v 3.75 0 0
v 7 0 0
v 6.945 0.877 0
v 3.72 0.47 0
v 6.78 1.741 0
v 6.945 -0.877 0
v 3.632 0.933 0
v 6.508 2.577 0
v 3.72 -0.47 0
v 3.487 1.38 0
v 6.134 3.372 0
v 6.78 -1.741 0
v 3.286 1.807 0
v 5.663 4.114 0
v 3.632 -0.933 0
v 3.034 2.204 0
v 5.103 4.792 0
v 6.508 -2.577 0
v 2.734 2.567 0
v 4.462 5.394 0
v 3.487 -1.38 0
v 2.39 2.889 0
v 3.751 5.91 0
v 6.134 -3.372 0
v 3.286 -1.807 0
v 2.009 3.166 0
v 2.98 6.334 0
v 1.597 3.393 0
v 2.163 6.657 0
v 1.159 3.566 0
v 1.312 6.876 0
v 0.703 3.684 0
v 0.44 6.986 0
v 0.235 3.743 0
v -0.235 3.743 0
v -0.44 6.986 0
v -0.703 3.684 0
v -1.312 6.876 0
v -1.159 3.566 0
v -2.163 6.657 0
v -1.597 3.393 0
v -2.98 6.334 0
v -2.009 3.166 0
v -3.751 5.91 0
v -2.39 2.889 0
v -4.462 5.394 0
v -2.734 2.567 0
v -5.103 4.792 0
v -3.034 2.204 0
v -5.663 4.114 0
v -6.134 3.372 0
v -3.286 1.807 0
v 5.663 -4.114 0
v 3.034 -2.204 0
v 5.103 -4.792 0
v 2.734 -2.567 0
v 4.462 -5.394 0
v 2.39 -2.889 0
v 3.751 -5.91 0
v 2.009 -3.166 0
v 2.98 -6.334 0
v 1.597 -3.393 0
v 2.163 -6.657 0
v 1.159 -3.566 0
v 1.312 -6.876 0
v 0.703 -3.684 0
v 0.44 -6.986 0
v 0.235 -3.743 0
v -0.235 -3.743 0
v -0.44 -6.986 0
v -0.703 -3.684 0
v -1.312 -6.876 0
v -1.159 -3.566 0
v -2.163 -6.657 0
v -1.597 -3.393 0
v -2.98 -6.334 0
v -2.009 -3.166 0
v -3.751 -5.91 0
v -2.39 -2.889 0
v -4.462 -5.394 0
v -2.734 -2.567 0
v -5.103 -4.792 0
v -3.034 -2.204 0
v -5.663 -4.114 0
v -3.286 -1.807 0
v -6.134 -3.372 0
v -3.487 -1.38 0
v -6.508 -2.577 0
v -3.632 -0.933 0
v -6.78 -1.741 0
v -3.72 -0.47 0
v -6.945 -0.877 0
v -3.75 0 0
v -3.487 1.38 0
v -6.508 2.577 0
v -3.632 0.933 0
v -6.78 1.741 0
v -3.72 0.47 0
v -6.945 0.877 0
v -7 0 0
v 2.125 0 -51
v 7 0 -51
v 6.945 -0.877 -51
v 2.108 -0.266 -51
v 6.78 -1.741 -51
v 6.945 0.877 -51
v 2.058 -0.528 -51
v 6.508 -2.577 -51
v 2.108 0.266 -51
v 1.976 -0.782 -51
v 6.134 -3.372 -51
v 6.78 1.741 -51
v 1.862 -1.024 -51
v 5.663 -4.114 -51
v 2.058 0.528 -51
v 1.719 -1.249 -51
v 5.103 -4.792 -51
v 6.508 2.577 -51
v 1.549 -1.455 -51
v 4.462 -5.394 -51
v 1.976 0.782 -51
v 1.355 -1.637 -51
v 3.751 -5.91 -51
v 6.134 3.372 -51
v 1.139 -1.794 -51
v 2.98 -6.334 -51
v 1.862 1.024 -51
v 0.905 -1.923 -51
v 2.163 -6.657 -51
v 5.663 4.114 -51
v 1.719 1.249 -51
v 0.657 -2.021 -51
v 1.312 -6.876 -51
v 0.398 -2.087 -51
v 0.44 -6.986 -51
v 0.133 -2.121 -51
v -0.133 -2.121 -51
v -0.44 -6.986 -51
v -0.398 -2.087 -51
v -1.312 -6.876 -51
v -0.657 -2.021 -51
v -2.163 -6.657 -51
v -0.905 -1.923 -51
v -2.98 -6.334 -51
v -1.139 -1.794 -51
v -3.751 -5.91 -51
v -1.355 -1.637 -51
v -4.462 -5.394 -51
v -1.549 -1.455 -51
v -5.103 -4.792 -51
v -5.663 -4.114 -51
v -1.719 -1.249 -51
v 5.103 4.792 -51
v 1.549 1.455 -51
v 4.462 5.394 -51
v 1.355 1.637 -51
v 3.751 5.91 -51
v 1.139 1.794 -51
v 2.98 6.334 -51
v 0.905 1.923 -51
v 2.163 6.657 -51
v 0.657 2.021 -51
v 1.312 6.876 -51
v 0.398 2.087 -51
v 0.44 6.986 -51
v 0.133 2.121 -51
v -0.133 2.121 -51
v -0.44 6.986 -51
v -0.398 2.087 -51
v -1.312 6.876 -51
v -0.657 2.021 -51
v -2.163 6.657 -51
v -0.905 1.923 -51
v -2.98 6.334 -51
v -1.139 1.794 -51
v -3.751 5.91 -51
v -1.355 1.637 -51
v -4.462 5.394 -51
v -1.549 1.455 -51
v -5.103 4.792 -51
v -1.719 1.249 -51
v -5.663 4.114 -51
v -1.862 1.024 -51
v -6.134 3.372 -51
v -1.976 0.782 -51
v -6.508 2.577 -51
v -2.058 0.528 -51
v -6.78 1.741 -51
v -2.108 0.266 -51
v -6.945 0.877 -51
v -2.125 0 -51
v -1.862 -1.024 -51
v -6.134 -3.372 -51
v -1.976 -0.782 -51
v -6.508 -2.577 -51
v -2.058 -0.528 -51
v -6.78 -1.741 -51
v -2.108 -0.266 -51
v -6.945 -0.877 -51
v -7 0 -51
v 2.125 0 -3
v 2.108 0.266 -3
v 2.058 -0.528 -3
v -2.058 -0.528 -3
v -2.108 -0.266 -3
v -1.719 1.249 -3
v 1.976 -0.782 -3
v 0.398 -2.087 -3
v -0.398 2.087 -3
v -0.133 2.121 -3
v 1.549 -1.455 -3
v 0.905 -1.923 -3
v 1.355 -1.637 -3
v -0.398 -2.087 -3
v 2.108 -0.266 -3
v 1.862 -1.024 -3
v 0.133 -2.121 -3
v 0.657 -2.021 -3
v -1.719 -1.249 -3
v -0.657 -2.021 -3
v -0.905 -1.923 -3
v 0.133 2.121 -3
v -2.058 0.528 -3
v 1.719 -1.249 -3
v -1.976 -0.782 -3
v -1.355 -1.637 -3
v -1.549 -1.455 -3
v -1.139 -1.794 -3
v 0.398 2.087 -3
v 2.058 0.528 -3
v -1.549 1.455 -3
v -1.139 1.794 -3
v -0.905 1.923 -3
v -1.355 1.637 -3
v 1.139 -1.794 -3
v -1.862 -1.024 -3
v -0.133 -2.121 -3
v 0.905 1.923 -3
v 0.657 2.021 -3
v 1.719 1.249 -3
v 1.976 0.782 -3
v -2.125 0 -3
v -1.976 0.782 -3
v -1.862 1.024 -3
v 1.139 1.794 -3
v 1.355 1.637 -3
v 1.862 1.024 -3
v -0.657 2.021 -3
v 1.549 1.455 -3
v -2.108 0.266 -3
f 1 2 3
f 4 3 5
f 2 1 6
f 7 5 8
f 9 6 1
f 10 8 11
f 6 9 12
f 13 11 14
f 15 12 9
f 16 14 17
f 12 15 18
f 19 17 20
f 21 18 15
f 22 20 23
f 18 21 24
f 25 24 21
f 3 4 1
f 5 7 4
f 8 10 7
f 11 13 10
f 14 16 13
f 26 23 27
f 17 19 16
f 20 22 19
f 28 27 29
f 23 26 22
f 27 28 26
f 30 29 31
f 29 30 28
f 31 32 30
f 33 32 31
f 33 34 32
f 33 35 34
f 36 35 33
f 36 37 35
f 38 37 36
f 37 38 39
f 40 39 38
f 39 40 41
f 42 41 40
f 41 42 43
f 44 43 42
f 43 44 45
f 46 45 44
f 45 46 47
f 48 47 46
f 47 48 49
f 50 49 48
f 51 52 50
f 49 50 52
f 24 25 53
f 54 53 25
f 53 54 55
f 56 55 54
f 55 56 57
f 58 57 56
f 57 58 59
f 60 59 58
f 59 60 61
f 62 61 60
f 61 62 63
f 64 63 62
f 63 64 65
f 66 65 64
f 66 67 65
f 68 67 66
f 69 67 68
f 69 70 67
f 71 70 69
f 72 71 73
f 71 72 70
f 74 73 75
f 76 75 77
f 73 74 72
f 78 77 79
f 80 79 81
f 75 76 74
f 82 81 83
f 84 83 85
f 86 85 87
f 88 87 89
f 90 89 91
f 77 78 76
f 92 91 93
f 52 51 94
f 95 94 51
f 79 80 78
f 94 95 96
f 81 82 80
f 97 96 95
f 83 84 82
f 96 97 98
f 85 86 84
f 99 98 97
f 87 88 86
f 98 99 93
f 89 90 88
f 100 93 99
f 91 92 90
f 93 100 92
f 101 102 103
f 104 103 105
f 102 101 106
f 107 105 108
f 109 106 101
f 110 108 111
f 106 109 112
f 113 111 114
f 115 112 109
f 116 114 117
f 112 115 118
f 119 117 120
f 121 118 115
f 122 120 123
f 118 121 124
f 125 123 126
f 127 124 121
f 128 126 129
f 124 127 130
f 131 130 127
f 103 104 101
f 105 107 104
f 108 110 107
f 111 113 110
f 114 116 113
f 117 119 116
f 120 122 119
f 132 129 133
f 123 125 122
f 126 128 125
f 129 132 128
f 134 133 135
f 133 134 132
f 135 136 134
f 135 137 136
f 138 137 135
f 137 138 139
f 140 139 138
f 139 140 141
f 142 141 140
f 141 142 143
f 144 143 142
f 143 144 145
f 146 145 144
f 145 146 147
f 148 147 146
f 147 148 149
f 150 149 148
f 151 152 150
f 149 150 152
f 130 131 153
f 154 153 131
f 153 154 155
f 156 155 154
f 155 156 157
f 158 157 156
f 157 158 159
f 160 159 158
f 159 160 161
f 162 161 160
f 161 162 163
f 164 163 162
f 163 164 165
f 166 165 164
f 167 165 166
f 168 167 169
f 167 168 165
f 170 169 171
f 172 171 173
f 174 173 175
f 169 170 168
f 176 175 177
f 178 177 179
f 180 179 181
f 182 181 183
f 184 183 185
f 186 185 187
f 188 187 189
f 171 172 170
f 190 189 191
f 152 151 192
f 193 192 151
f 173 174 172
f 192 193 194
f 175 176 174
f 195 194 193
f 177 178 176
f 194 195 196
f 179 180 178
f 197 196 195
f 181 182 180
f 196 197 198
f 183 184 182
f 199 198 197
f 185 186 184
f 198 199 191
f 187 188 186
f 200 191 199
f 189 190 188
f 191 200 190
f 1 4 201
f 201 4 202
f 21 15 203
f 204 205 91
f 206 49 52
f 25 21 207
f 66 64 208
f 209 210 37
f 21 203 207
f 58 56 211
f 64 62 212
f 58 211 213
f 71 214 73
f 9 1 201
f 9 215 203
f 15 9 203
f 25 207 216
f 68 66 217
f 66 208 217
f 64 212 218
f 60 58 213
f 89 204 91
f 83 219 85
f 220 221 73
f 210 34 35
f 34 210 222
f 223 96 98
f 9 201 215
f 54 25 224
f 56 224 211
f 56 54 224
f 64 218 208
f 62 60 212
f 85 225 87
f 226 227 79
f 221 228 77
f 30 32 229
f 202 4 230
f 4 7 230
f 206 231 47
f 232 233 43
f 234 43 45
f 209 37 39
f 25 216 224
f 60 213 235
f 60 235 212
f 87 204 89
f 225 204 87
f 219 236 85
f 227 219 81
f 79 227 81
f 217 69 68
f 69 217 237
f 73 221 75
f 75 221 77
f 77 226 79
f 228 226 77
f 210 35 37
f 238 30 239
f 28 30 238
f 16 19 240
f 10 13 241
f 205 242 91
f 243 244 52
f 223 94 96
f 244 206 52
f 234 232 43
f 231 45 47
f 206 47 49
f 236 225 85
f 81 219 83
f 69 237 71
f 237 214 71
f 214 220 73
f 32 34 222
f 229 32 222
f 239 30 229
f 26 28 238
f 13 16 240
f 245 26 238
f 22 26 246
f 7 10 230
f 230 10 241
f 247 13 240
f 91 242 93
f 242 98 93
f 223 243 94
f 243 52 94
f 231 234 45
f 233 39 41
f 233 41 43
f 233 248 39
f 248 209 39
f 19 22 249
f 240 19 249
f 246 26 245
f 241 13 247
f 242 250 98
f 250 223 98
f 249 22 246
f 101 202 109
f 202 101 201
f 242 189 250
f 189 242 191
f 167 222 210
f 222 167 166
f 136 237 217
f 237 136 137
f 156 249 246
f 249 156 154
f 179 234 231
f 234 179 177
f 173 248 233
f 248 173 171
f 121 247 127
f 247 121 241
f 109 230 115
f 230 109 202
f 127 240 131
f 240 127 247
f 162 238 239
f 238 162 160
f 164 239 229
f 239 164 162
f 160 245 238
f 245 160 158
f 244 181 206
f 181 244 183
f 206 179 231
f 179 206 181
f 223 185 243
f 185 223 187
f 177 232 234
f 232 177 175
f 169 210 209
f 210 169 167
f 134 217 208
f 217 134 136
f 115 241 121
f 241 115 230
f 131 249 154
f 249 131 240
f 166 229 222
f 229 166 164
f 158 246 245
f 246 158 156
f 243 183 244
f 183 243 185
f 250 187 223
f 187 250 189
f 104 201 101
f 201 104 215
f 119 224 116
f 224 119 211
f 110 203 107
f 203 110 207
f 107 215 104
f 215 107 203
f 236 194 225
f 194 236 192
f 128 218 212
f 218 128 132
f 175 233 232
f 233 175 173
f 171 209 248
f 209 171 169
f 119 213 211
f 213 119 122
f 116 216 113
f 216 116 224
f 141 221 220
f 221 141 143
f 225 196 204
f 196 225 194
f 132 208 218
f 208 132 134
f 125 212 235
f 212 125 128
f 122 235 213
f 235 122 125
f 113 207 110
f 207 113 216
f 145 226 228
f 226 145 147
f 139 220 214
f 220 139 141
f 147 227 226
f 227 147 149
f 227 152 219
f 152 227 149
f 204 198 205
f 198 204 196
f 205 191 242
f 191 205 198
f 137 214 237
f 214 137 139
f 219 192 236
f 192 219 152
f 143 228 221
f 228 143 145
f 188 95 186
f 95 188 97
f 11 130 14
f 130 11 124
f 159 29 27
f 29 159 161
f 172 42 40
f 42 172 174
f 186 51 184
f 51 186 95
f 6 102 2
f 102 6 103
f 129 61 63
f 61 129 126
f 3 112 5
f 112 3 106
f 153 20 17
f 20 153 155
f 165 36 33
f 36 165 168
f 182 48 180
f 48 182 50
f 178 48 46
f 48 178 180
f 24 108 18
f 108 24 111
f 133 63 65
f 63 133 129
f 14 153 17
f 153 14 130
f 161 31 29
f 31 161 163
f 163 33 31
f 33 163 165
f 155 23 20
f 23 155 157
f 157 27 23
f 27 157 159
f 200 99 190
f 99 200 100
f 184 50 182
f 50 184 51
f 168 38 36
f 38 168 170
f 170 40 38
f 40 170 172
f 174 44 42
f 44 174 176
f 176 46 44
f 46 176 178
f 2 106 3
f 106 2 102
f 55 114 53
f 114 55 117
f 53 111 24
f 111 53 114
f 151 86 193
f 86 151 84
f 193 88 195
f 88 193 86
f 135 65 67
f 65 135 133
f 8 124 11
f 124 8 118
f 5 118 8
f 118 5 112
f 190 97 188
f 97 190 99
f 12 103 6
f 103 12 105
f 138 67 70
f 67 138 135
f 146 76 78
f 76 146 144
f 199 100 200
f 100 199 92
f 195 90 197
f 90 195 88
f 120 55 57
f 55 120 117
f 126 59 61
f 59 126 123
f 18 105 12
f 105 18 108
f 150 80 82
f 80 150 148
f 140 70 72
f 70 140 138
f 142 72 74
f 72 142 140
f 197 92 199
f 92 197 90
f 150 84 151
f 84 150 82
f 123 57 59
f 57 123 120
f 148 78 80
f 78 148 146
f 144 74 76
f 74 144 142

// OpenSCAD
$fn = 50;


difference() {
	union() {
		translate(v = [0, 0, -51.0000000000]) {
			cylinder(h = 51, r = 7.0000000000);
		}
		cylinder(h = 0, r = 16.0000000000);
	}
	union() {
		translate(v = [0, 0, 0]) {
			rotate(a = [0, 0, 0]) {
				difference() {
					union() {
						#translate(v = [0, 0, -51.0000000000]) {
							cylinder(h = 51, r = 2.0000000000);
						}
						#translate(v = [0, 0, -3]) {
							cylinder(h = 3, r = 7.0000000000, r1 = 2.1250000000, r2 = 3.7500000000);
						}
						#translate(v = [0, 0, -51.0000000000]) {
							cylinder(h = 51, r = 2.1250000000);
						}
						#translate(v = [0, 0, -51.0000000000]) {
							cylinder(h = 51, r = 2.0000000000);
						}
					}
					union();
				}
			}
		}
	}
}
